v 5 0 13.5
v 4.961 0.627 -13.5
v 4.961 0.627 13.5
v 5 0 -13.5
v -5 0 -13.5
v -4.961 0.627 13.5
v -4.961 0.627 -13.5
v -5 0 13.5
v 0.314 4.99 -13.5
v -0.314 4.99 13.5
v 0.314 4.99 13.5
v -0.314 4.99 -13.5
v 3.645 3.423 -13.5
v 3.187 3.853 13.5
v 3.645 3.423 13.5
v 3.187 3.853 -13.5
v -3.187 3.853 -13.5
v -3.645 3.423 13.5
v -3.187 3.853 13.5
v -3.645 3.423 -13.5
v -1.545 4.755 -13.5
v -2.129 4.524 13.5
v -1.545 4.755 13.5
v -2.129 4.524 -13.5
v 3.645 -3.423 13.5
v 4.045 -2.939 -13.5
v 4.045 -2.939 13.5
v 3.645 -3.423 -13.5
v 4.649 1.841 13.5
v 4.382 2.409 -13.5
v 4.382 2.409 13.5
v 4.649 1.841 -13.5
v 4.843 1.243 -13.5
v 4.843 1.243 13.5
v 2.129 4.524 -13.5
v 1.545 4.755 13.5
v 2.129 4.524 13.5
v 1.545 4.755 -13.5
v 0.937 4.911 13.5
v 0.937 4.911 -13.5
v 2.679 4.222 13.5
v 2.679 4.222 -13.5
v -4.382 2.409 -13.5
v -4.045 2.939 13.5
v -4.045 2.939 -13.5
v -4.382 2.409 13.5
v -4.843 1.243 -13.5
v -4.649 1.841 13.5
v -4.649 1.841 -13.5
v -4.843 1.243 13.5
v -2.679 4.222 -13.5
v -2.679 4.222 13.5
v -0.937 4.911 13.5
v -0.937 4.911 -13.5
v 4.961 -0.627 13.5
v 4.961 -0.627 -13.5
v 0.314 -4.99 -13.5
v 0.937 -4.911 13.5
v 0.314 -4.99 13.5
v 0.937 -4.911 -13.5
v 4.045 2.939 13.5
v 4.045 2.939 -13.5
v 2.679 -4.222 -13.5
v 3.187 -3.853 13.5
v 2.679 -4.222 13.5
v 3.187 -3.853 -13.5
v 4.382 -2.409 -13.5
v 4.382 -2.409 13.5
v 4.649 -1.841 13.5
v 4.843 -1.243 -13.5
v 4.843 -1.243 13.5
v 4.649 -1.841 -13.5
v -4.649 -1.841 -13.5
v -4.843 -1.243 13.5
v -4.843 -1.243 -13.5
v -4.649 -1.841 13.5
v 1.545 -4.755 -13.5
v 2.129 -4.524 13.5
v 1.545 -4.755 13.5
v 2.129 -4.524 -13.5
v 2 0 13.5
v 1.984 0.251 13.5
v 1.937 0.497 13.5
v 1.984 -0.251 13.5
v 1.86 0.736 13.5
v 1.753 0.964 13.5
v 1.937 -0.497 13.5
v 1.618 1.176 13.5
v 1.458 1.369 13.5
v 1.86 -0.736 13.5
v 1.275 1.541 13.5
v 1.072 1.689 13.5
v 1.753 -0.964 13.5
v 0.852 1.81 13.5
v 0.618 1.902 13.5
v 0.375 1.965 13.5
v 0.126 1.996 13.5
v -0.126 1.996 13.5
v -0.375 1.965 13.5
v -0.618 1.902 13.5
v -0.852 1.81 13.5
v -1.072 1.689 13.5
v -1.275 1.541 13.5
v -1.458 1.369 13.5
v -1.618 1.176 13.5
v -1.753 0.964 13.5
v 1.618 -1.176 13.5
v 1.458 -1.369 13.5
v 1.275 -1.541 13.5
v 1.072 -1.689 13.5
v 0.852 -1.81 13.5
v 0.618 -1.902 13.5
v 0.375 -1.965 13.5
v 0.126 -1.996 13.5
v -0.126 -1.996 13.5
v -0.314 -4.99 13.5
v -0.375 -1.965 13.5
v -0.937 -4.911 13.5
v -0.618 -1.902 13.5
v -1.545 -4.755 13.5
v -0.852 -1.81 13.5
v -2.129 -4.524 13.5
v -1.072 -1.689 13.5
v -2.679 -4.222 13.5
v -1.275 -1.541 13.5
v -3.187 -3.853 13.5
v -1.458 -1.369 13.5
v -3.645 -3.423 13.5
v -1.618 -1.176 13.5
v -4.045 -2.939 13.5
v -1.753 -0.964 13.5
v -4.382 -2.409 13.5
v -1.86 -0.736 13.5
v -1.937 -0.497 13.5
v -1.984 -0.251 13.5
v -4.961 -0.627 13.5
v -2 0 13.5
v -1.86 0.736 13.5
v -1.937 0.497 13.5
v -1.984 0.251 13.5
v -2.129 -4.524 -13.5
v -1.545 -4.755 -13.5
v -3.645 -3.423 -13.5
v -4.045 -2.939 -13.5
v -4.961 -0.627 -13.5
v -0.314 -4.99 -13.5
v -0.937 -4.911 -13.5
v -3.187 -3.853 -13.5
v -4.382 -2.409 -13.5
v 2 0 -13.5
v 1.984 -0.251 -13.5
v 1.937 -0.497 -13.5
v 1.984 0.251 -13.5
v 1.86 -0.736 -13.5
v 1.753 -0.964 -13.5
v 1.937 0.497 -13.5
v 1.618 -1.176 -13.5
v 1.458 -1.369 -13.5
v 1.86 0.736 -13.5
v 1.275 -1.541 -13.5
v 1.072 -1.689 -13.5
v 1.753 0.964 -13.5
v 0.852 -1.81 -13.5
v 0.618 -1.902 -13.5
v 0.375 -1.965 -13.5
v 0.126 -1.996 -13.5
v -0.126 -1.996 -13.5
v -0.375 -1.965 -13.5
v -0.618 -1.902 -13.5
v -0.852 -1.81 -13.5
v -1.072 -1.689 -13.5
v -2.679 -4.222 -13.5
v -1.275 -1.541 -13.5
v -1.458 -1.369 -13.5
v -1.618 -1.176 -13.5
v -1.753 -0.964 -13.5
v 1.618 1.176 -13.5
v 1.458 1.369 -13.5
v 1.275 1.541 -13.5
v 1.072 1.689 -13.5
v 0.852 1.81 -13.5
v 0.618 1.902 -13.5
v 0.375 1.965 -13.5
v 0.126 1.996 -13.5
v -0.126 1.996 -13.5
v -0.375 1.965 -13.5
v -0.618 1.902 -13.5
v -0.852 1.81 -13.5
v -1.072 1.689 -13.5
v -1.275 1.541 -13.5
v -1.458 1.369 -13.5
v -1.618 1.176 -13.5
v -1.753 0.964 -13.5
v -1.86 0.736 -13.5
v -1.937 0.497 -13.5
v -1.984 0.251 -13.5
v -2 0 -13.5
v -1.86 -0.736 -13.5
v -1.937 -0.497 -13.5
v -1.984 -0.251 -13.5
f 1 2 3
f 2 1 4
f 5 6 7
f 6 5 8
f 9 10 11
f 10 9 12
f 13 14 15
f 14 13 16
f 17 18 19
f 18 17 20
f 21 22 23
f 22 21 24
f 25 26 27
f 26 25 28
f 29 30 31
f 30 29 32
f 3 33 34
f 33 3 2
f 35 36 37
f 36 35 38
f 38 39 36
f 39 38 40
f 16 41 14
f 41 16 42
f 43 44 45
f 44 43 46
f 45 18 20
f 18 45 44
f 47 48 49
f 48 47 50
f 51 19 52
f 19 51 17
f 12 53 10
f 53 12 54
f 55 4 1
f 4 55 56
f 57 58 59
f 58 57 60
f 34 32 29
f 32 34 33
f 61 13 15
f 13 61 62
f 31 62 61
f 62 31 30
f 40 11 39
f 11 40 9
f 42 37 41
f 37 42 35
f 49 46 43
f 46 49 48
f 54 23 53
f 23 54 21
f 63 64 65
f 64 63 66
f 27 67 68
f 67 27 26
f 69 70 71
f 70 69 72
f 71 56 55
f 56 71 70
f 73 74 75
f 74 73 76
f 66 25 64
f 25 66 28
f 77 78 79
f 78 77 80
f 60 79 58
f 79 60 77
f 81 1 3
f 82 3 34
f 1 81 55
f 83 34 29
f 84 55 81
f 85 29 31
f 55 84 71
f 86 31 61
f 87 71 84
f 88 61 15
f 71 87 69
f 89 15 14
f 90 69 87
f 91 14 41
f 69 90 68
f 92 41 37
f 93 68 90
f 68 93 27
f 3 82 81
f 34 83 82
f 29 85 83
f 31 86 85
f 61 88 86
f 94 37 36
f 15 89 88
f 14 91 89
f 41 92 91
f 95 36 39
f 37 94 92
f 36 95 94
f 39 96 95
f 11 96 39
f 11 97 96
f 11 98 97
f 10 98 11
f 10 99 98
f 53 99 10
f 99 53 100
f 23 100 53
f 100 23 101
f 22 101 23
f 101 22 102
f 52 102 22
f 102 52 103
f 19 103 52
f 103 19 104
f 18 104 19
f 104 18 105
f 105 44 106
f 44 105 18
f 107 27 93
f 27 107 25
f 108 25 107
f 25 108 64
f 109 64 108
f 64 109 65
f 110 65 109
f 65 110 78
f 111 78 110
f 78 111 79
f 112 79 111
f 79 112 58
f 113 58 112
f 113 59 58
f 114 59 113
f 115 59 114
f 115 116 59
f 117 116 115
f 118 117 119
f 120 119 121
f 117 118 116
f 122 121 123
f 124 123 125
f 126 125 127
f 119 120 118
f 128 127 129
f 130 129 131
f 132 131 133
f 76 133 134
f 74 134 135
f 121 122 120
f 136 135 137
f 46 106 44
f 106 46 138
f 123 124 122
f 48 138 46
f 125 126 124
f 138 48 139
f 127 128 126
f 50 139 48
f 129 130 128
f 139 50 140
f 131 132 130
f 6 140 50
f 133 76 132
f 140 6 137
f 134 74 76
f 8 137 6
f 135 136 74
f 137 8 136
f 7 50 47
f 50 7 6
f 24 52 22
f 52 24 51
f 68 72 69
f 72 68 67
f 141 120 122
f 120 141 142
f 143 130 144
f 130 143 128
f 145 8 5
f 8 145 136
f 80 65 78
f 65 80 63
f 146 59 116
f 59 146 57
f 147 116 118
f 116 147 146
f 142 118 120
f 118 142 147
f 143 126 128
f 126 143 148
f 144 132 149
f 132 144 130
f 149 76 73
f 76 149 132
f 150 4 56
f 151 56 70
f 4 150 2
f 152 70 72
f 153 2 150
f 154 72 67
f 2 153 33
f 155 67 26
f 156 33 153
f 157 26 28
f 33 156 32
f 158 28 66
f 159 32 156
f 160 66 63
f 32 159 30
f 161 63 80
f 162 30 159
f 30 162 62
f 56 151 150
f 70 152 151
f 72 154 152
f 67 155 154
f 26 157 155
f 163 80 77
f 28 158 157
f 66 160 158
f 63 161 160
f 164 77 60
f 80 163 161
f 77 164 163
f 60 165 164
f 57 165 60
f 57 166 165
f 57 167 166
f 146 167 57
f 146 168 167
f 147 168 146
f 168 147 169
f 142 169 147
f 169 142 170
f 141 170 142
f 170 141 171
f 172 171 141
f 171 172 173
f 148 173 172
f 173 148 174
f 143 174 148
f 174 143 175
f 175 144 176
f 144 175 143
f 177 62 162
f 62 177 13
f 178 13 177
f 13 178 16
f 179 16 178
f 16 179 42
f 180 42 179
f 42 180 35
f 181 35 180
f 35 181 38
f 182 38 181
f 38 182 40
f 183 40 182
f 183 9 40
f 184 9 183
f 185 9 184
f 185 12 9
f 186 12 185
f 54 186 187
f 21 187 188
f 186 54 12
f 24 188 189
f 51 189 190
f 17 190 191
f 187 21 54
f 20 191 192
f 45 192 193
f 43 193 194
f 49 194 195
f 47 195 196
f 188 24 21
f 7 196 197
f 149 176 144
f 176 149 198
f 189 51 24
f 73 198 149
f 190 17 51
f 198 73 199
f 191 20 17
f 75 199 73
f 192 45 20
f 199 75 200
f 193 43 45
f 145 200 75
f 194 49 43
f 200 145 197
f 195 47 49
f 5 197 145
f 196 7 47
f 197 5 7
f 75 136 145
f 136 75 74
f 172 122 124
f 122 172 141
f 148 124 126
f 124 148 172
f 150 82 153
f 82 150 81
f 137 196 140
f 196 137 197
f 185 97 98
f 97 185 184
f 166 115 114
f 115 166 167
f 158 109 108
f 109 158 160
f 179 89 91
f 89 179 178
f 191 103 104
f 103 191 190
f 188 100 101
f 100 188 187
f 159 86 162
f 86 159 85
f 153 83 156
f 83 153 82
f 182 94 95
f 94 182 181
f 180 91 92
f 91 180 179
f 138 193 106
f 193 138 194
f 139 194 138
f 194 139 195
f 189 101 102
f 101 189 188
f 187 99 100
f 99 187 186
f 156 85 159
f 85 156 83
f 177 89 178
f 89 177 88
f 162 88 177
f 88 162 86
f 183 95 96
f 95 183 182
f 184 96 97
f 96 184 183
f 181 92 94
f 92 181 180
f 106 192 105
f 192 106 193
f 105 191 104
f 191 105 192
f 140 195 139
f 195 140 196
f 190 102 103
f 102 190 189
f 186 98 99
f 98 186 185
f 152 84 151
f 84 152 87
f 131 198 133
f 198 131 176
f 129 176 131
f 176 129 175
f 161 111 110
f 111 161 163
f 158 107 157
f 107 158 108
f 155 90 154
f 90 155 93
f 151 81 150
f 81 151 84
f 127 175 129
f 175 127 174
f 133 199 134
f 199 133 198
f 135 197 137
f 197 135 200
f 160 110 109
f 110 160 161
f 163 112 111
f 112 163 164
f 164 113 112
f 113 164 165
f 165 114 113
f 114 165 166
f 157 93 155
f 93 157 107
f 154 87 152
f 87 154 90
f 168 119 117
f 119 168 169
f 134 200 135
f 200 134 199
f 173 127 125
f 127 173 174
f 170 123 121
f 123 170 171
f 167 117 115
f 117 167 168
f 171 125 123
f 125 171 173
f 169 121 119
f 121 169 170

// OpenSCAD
$fn = 50;


difference() {
	union() {
		translate(v = [0, 0, -13.5000000000]) {
			cylinder(h = 27, r = 5.0000000000);
		}
	}
	union() {
		translate(v = [0, 0, -100.0000000000]) {
			cylinder(h = 200, r = 2.0000000000);
		}
	}
}
